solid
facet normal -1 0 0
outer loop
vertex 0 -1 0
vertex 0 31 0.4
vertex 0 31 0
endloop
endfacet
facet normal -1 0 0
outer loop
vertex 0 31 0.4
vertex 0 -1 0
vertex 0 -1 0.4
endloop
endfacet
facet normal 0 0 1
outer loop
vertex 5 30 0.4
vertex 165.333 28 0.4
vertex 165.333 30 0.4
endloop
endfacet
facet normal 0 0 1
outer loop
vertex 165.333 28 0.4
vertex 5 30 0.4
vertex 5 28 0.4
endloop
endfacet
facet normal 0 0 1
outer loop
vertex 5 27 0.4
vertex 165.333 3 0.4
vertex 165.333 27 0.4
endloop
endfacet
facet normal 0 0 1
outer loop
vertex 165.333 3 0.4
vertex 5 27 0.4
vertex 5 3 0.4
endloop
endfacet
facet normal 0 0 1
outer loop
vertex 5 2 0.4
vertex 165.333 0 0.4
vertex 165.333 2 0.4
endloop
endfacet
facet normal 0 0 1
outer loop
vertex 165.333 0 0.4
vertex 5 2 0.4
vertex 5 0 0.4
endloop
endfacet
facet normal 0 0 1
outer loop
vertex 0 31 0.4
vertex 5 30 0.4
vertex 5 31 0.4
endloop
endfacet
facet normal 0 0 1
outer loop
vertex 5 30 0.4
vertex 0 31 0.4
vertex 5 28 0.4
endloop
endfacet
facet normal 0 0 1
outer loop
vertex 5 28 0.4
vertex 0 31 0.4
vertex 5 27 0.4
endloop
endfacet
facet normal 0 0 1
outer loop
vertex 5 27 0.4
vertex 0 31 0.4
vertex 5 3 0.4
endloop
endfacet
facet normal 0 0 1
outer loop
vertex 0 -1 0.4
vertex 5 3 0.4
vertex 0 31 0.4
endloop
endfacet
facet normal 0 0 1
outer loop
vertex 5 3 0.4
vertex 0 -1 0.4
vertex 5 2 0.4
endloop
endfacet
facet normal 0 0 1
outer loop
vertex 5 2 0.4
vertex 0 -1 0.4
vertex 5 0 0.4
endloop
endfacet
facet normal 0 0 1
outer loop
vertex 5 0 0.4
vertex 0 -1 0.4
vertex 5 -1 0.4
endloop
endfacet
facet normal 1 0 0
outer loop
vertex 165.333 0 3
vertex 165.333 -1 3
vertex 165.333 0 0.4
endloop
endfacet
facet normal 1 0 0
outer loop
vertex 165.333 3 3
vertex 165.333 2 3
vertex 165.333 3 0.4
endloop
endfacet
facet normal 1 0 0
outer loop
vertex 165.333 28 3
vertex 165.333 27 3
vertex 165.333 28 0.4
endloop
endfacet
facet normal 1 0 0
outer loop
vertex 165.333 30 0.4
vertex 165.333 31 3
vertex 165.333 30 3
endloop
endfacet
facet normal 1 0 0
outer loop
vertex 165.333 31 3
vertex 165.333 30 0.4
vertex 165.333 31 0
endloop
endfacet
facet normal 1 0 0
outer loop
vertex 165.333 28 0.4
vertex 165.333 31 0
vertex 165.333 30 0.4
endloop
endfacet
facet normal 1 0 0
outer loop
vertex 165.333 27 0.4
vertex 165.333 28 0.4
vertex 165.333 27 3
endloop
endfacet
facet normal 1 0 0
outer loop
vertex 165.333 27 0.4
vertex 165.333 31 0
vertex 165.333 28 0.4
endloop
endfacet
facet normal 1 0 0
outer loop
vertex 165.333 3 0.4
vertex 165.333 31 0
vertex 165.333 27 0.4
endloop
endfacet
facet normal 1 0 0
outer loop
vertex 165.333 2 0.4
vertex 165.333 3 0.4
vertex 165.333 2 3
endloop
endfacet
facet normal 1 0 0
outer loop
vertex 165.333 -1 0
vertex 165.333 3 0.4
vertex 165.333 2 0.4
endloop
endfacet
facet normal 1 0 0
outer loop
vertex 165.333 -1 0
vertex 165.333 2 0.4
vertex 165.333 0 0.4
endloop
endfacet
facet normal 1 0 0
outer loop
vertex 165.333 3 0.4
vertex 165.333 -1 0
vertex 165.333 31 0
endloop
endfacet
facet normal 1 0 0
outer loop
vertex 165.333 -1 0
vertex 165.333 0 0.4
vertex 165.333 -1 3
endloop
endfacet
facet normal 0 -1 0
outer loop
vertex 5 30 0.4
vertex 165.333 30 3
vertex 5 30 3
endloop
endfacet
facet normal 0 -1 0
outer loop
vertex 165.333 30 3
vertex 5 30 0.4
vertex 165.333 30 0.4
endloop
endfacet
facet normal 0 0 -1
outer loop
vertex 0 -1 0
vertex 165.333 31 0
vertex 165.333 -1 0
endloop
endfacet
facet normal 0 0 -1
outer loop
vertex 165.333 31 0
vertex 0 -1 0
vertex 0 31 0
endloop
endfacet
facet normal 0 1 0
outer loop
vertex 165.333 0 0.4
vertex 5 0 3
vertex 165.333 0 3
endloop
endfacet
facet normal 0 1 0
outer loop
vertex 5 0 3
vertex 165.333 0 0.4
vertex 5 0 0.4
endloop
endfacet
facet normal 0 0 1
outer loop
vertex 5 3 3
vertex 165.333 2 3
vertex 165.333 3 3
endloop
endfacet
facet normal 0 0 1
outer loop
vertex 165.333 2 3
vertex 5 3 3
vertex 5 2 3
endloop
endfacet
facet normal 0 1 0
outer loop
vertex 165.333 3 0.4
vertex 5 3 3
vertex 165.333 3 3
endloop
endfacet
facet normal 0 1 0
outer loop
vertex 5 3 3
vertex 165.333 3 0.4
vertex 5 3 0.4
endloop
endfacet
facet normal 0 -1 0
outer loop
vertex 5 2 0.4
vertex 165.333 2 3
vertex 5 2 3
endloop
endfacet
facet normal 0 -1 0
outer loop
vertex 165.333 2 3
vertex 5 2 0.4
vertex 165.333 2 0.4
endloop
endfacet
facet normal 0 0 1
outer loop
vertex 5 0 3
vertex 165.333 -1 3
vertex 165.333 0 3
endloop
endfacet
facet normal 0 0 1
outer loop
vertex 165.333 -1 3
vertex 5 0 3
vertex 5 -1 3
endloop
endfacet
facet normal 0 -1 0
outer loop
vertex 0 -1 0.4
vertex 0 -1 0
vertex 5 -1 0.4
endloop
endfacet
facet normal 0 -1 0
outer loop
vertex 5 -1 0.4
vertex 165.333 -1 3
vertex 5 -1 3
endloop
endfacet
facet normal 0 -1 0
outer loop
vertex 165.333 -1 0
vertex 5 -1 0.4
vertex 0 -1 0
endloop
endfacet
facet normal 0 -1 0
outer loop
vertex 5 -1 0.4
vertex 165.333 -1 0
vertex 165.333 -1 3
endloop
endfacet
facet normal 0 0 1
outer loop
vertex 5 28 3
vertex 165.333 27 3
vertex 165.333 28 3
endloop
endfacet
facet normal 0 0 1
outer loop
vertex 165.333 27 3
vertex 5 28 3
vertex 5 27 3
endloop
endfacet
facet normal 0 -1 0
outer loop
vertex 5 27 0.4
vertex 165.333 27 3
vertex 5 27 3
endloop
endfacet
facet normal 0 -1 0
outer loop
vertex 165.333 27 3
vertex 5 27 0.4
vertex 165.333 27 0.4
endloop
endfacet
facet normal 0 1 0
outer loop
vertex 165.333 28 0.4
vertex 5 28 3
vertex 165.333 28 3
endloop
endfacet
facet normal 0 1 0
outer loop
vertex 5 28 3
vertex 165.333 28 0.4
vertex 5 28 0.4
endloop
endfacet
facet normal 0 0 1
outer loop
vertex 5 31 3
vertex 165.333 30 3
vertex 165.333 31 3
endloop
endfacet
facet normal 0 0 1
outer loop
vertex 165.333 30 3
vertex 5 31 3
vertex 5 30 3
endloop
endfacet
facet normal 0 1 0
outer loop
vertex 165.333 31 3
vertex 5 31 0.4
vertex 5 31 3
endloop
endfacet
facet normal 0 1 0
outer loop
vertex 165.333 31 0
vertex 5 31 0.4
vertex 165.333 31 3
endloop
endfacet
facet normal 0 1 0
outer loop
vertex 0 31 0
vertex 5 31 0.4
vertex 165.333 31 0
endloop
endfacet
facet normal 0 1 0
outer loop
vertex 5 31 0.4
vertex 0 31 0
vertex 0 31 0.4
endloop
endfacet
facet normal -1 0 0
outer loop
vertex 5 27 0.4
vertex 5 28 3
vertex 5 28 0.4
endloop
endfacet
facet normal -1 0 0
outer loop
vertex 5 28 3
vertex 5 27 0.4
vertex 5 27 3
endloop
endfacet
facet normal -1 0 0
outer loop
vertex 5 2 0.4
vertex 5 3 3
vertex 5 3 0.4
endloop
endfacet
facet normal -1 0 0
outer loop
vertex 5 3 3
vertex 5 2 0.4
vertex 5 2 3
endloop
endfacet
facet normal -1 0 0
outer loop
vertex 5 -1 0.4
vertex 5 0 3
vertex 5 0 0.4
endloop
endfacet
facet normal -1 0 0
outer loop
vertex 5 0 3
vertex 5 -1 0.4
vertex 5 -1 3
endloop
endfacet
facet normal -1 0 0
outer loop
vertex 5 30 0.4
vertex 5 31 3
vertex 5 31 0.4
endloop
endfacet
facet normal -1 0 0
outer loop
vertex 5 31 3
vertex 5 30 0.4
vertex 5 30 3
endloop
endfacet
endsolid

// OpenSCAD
// The measures of the u-profile
ml_up_width=496;
ml_up_depth=30;
ml_up_heigth=20;
ml_up_thickness=2;

ml_dif_part_count=3;
ml_dif_thickness=0.4;
mf_dif_width=ml_up_width / ml_dif_part_count;

ml_endcap_groove_depth=5;

difference() {
    union() {
        cube([mf_dif_width, ml_up_depth, ml_dif_thickness]);

        // Inner holder right
        color("cyan")
        translate([0, ml_up_thickness, ml_dif_thickness])
        cube([mf_dif_width, 1, 3 - ml_dif_thickness]);

        // Outer holder right
        color("cyan")
        translate([0, -1, 0])
        cube([mf_dif_width, 1, 3]);

        // Inner holder left
        color("blue")
        translate([0, ml_up_depth - ml_up_thickness - 1, ml_dif_thickness])
        cube([mf_dif_width, 1, 3 - ml_dif_thickness]);

        // Outer holder left
        color("blue")
        translate([0, ml_up_depth, 0])
        cube([mf_dif_width, 1, 3]);
    }
    color("red")
    translate([-1, -2, ml_dif_thickness])
    cube([ml_endcap_groove_depth + 1, ml_up_depth + 4, 4]);
}
